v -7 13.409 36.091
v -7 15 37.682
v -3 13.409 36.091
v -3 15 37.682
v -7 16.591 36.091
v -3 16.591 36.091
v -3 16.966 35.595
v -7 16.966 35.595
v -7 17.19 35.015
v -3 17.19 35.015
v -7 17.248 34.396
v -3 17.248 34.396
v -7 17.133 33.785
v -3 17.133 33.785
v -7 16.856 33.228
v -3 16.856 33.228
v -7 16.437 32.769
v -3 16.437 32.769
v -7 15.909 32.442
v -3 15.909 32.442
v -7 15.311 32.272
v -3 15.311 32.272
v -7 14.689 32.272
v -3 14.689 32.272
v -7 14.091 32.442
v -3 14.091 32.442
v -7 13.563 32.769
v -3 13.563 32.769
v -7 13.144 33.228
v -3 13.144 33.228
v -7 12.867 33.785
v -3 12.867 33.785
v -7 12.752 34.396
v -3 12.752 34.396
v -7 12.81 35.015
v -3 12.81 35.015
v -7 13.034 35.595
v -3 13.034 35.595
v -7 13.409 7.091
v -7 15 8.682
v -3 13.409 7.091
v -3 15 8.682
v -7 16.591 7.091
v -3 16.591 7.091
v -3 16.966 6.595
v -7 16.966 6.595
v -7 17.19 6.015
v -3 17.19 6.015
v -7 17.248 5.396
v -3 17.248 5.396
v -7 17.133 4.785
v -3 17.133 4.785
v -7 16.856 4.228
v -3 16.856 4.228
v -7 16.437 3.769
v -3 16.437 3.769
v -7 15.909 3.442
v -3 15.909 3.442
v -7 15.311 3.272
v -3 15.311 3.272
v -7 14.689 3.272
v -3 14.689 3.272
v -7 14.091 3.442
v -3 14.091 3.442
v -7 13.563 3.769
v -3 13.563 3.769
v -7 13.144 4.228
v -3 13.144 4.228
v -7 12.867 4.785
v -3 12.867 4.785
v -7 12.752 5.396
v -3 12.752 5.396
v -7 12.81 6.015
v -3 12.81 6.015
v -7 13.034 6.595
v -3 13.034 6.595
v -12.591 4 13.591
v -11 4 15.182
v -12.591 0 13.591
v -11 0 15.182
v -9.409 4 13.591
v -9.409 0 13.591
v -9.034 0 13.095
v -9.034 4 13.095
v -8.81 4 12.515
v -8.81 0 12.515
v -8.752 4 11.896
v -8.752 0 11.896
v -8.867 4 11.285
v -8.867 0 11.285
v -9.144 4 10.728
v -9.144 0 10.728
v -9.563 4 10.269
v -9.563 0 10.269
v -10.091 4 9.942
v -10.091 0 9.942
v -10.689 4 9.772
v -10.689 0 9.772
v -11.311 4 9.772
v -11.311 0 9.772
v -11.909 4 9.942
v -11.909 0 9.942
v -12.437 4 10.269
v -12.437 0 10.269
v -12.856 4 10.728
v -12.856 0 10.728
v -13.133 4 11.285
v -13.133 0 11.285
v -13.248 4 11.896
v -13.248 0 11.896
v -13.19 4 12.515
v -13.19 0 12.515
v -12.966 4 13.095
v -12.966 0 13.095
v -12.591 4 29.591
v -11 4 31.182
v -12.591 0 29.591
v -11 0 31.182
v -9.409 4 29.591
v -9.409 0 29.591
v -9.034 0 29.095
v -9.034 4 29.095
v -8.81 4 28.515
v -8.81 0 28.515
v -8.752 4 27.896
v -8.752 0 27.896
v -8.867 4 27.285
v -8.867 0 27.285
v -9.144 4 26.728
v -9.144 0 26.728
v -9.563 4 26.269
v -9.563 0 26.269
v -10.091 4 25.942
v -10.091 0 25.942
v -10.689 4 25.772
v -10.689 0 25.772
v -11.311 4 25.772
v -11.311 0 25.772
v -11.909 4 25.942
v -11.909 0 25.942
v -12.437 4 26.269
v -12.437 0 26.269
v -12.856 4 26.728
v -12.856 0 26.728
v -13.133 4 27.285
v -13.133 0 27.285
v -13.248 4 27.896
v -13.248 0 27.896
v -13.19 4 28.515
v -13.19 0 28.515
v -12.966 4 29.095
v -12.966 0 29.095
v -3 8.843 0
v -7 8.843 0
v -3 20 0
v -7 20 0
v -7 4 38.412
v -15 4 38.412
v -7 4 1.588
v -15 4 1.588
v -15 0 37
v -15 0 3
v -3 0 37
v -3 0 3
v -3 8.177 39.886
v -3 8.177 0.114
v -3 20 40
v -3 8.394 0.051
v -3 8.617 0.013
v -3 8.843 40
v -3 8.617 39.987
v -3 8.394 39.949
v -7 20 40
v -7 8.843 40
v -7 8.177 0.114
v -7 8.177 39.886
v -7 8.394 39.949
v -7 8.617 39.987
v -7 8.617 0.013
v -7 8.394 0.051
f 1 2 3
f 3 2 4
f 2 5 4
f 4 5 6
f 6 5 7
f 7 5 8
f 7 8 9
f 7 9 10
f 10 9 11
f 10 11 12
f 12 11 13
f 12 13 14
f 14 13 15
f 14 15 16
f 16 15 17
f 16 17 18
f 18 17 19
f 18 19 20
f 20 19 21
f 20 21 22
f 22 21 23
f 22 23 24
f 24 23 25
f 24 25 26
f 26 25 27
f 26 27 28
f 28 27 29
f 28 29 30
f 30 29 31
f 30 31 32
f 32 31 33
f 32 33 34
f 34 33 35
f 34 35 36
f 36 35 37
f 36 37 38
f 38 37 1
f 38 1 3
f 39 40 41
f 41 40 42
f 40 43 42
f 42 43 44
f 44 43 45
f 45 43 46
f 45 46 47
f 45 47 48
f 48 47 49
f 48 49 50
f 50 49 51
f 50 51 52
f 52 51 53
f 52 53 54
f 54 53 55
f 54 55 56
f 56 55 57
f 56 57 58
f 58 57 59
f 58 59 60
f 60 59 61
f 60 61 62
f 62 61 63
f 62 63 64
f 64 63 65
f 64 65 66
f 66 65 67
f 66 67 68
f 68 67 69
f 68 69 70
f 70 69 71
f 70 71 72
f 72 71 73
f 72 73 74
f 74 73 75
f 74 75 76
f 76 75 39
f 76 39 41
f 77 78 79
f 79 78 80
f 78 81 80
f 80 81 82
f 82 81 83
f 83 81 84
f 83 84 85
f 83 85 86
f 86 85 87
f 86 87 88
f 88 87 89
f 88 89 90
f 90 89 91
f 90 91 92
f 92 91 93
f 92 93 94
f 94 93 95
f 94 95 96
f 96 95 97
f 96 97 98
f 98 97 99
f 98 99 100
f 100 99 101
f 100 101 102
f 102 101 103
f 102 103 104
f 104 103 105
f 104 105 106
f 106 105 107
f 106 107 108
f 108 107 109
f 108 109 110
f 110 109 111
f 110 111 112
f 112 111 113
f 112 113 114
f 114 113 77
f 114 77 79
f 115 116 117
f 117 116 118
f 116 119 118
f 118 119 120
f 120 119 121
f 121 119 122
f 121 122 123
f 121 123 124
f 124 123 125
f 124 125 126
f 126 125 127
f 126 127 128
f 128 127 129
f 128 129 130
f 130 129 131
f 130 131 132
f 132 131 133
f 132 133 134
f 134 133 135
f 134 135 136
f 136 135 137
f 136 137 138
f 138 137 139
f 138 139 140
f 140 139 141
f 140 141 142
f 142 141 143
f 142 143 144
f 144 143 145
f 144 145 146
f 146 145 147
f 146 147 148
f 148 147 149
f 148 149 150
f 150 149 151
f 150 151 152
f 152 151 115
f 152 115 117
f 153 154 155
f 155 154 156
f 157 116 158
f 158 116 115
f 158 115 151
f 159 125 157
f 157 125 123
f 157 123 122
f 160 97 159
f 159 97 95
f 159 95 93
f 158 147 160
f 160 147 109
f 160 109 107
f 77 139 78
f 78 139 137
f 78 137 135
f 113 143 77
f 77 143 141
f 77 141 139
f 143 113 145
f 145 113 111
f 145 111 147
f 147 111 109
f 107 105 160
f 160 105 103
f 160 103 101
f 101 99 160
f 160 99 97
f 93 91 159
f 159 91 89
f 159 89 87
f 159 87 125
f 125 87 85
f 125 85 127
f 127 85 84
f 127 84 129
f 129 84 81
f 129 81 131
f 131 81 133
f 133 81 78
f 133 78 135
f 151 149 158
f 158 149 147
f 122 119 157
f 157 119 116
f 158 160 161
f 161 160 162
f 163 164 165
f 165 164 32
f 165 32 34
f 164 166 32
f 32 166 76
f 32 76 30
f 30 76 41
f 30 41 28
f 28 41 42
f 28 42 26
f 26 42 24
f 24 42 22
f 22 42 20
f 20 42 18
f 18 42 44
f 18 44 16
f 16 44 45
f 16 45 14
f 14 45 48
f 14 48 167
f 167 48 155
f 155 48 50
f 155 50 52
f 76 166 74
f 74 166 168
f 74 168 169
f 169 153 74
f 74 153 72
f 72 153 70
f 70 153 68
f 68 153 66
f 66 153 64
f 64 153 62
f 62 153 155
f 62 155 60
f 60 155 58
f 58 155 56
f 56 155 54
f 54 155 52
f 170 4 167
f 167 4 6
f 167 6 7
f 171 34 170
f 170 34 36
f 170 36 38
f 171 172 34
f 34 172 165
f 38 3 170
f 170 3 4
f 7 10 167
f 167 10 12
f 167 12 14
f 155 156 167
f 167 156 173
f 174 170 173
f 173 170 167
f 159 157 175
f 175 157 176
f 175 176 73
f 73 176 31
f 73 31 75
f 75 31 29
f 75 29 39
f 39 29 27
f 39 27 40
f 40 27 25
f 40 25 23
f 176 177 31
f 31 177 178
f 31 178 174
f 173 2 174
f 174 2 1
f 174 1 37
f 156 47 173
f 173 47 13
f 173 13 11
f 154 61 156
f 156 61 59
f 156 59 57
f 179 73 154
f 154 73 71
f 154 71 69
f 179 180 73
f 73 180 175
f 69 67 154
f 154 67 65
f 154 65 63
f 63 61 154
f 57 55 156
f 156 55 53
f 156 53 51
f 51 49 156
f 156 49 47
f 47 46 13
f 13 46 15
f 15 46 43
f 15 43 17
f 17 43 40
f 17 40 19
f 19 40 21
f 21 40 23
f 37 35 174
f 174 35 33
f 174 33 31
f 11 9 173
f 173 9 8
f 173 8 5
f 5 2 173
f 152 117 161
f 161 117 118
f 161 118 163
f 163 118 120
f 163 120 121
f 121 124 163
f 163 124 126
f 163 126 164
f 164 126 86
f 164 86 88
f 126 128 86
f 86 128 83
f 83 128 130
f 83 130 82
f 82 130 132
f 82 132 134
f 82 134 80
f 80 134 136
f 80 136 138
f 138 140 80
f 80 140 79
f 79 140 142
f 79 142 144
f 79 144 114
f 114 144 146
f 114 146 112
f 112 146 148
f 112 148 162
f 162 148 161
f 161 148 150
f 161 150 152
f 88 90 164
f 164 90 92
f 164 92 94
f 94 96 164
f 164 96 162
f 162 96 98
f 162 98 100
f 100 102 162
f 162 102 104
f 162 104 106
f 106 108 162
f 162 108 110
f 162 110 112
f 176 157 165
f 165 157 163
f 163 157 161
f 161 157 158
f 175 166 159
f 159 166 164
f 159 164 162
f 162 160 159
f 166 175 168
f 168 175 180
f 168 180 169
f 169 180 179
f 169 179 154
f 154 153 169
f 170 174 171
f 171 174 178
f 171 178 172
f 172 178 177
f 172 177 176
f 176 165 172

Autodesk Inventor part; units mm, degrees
ref_plane "YZ Plane" through (0, 0, 0) normal (1, 0, 0) x (0, 1, 0)
ref_plane "XZ Plane" through (0, 0, 0) normal (0, 1, 0) x (-1, 0, 0)
ref_plane "XY Plane" through (0, 0, 0) normal (0, 0, 1) x (1, 0, 0)
sketch "Sketch1" plane through (0, 0, 0) normal (0, 0, 1) x (1, 0, 0)
  line L0 (-3, 0) -> (-3, 20)
  line L1 (-15, 0) -> (-3, 0)
  line L2 (-15, 4) -> (-15, 0)
  line L3 (-7, 4) -> (-15, 4)
  line L4 (-7, 20) -> (-7, 4)
  line L5 (-3, 20) -> (-7, 20)
extrude "Extrusion4" add sketch "Sketch1" along normal blind 40
sketch "Sketch2" plane through (-15, 4, 0) normal (0, 1, 0) x (1, 0, 0)
  arc A0 (5.591, -13.591) -> (2.409, -13.591) centre (4, -12) ccw
  line L0 (4, -15.182) -> (5.591, -13.591)
  line L1 (2.409, -13.591) -> (4, -15.182)
  line L2 (8, 0) -> (0, 0) projected
  line L3 (0, 0) -> (0, -40) projected
  arc A1 (5.591, -29.591) -> (2.409, -29.591) centre (4, -28) ccw
  line L4 (4, -31.182) -> (5.591, -29.591)
  line L5 (2.409, -29.591) -> (4, -31.182)
  line L6 (8, -40) -> (0, -40) projected
  dimension "d8" = 2.25
  dimension "d9" = 12
  dimension "d10" = 4
  dimension "d11" = 2.25
  dimension "d12" = 2.25
  dimension "d13" = 2.25
  dimension "d14" = 12
  dimension "d15" = 4
extrude "Extrusion3" cut sketch "Sketch2" against normal blind 4
sketch "Sketch3" plane through (-7, 4, 0) normal (-1, 0, 0) x (0, 0, 1)
  arc A0 (7.091, 12.591) -> (7.091, 9.409) centre (5.5, 11) ccw
  line L0 (8.682, 11) -> (7.091, 9.409)
  line L1 (7.091, 12.591) -> (8.682, 11)
extrude "Extrusion2" cut sketch "Sketch3" against normal blind 4 draft 0
sketch "Sketch4" plane through (-7, 4, 0) normal (-1, 0, 0) x (0, 0, 1)
  arc A0 (36.091, 12.591) -> (36.091, 9.409) centre (34.5, 11) ccw
  line L0 (37.682, 11) -> (36.091, 9.409)
  line L1 (36.091, 12.591) -> (37.682, 11)
extrude "Extrusion1" cut sketch "Sketch4" against normal blind 4 draft 0
sketch "Sketch5" plane through (-3, 0, 0) normal (1, 0, 0) x (0, 0, -1)
  arc A0 (-36.091, 13.409) -> (-36.091, 16.591) centre (-34.5, 15) ccw projected
  line L0 (-40, 0) -> (-40, 20) projected
  circle A1 centre (-34.5, 15) radius 6.5 construction
  line L1 (0, 0) -> (-40, 0) projected
  line L2 (-37, 0) -> (-39.886, 8.1769)
  arc A2 (-40, 8.8426) -> (-39.886, 8.1769) centre (-38, 8.8426) ccw
  line L3 (-37, 0) -> (-40, 0)
  line L4 (-40, 0) -> (-40, 8.8426)
  line L5 (-20, 22.0768) -> (-20, -2.8383) construction
  line L6 (-3, 0) -> (-0.114, 8.1769)
  arc A3 (-0.114, 8.1769) -> (0, 8.8426) centre (-2, 8.8426) ccw
  line L7 (-3, 0) -> (0, 0)
  line L8 (0, 0) -> (0, 8.8426)
  point P0 (-40, 8.5)
  dimension "d16" = 13
  dimension "d17" = 3
  dimension "d18" = 6.5
  dimension "d19" = 2
extrude "Extrusion7" cut sketch "Sketch5" against normal through all
properties part number "Y-axis Belt Idler 1" material "ASA Plastic"
